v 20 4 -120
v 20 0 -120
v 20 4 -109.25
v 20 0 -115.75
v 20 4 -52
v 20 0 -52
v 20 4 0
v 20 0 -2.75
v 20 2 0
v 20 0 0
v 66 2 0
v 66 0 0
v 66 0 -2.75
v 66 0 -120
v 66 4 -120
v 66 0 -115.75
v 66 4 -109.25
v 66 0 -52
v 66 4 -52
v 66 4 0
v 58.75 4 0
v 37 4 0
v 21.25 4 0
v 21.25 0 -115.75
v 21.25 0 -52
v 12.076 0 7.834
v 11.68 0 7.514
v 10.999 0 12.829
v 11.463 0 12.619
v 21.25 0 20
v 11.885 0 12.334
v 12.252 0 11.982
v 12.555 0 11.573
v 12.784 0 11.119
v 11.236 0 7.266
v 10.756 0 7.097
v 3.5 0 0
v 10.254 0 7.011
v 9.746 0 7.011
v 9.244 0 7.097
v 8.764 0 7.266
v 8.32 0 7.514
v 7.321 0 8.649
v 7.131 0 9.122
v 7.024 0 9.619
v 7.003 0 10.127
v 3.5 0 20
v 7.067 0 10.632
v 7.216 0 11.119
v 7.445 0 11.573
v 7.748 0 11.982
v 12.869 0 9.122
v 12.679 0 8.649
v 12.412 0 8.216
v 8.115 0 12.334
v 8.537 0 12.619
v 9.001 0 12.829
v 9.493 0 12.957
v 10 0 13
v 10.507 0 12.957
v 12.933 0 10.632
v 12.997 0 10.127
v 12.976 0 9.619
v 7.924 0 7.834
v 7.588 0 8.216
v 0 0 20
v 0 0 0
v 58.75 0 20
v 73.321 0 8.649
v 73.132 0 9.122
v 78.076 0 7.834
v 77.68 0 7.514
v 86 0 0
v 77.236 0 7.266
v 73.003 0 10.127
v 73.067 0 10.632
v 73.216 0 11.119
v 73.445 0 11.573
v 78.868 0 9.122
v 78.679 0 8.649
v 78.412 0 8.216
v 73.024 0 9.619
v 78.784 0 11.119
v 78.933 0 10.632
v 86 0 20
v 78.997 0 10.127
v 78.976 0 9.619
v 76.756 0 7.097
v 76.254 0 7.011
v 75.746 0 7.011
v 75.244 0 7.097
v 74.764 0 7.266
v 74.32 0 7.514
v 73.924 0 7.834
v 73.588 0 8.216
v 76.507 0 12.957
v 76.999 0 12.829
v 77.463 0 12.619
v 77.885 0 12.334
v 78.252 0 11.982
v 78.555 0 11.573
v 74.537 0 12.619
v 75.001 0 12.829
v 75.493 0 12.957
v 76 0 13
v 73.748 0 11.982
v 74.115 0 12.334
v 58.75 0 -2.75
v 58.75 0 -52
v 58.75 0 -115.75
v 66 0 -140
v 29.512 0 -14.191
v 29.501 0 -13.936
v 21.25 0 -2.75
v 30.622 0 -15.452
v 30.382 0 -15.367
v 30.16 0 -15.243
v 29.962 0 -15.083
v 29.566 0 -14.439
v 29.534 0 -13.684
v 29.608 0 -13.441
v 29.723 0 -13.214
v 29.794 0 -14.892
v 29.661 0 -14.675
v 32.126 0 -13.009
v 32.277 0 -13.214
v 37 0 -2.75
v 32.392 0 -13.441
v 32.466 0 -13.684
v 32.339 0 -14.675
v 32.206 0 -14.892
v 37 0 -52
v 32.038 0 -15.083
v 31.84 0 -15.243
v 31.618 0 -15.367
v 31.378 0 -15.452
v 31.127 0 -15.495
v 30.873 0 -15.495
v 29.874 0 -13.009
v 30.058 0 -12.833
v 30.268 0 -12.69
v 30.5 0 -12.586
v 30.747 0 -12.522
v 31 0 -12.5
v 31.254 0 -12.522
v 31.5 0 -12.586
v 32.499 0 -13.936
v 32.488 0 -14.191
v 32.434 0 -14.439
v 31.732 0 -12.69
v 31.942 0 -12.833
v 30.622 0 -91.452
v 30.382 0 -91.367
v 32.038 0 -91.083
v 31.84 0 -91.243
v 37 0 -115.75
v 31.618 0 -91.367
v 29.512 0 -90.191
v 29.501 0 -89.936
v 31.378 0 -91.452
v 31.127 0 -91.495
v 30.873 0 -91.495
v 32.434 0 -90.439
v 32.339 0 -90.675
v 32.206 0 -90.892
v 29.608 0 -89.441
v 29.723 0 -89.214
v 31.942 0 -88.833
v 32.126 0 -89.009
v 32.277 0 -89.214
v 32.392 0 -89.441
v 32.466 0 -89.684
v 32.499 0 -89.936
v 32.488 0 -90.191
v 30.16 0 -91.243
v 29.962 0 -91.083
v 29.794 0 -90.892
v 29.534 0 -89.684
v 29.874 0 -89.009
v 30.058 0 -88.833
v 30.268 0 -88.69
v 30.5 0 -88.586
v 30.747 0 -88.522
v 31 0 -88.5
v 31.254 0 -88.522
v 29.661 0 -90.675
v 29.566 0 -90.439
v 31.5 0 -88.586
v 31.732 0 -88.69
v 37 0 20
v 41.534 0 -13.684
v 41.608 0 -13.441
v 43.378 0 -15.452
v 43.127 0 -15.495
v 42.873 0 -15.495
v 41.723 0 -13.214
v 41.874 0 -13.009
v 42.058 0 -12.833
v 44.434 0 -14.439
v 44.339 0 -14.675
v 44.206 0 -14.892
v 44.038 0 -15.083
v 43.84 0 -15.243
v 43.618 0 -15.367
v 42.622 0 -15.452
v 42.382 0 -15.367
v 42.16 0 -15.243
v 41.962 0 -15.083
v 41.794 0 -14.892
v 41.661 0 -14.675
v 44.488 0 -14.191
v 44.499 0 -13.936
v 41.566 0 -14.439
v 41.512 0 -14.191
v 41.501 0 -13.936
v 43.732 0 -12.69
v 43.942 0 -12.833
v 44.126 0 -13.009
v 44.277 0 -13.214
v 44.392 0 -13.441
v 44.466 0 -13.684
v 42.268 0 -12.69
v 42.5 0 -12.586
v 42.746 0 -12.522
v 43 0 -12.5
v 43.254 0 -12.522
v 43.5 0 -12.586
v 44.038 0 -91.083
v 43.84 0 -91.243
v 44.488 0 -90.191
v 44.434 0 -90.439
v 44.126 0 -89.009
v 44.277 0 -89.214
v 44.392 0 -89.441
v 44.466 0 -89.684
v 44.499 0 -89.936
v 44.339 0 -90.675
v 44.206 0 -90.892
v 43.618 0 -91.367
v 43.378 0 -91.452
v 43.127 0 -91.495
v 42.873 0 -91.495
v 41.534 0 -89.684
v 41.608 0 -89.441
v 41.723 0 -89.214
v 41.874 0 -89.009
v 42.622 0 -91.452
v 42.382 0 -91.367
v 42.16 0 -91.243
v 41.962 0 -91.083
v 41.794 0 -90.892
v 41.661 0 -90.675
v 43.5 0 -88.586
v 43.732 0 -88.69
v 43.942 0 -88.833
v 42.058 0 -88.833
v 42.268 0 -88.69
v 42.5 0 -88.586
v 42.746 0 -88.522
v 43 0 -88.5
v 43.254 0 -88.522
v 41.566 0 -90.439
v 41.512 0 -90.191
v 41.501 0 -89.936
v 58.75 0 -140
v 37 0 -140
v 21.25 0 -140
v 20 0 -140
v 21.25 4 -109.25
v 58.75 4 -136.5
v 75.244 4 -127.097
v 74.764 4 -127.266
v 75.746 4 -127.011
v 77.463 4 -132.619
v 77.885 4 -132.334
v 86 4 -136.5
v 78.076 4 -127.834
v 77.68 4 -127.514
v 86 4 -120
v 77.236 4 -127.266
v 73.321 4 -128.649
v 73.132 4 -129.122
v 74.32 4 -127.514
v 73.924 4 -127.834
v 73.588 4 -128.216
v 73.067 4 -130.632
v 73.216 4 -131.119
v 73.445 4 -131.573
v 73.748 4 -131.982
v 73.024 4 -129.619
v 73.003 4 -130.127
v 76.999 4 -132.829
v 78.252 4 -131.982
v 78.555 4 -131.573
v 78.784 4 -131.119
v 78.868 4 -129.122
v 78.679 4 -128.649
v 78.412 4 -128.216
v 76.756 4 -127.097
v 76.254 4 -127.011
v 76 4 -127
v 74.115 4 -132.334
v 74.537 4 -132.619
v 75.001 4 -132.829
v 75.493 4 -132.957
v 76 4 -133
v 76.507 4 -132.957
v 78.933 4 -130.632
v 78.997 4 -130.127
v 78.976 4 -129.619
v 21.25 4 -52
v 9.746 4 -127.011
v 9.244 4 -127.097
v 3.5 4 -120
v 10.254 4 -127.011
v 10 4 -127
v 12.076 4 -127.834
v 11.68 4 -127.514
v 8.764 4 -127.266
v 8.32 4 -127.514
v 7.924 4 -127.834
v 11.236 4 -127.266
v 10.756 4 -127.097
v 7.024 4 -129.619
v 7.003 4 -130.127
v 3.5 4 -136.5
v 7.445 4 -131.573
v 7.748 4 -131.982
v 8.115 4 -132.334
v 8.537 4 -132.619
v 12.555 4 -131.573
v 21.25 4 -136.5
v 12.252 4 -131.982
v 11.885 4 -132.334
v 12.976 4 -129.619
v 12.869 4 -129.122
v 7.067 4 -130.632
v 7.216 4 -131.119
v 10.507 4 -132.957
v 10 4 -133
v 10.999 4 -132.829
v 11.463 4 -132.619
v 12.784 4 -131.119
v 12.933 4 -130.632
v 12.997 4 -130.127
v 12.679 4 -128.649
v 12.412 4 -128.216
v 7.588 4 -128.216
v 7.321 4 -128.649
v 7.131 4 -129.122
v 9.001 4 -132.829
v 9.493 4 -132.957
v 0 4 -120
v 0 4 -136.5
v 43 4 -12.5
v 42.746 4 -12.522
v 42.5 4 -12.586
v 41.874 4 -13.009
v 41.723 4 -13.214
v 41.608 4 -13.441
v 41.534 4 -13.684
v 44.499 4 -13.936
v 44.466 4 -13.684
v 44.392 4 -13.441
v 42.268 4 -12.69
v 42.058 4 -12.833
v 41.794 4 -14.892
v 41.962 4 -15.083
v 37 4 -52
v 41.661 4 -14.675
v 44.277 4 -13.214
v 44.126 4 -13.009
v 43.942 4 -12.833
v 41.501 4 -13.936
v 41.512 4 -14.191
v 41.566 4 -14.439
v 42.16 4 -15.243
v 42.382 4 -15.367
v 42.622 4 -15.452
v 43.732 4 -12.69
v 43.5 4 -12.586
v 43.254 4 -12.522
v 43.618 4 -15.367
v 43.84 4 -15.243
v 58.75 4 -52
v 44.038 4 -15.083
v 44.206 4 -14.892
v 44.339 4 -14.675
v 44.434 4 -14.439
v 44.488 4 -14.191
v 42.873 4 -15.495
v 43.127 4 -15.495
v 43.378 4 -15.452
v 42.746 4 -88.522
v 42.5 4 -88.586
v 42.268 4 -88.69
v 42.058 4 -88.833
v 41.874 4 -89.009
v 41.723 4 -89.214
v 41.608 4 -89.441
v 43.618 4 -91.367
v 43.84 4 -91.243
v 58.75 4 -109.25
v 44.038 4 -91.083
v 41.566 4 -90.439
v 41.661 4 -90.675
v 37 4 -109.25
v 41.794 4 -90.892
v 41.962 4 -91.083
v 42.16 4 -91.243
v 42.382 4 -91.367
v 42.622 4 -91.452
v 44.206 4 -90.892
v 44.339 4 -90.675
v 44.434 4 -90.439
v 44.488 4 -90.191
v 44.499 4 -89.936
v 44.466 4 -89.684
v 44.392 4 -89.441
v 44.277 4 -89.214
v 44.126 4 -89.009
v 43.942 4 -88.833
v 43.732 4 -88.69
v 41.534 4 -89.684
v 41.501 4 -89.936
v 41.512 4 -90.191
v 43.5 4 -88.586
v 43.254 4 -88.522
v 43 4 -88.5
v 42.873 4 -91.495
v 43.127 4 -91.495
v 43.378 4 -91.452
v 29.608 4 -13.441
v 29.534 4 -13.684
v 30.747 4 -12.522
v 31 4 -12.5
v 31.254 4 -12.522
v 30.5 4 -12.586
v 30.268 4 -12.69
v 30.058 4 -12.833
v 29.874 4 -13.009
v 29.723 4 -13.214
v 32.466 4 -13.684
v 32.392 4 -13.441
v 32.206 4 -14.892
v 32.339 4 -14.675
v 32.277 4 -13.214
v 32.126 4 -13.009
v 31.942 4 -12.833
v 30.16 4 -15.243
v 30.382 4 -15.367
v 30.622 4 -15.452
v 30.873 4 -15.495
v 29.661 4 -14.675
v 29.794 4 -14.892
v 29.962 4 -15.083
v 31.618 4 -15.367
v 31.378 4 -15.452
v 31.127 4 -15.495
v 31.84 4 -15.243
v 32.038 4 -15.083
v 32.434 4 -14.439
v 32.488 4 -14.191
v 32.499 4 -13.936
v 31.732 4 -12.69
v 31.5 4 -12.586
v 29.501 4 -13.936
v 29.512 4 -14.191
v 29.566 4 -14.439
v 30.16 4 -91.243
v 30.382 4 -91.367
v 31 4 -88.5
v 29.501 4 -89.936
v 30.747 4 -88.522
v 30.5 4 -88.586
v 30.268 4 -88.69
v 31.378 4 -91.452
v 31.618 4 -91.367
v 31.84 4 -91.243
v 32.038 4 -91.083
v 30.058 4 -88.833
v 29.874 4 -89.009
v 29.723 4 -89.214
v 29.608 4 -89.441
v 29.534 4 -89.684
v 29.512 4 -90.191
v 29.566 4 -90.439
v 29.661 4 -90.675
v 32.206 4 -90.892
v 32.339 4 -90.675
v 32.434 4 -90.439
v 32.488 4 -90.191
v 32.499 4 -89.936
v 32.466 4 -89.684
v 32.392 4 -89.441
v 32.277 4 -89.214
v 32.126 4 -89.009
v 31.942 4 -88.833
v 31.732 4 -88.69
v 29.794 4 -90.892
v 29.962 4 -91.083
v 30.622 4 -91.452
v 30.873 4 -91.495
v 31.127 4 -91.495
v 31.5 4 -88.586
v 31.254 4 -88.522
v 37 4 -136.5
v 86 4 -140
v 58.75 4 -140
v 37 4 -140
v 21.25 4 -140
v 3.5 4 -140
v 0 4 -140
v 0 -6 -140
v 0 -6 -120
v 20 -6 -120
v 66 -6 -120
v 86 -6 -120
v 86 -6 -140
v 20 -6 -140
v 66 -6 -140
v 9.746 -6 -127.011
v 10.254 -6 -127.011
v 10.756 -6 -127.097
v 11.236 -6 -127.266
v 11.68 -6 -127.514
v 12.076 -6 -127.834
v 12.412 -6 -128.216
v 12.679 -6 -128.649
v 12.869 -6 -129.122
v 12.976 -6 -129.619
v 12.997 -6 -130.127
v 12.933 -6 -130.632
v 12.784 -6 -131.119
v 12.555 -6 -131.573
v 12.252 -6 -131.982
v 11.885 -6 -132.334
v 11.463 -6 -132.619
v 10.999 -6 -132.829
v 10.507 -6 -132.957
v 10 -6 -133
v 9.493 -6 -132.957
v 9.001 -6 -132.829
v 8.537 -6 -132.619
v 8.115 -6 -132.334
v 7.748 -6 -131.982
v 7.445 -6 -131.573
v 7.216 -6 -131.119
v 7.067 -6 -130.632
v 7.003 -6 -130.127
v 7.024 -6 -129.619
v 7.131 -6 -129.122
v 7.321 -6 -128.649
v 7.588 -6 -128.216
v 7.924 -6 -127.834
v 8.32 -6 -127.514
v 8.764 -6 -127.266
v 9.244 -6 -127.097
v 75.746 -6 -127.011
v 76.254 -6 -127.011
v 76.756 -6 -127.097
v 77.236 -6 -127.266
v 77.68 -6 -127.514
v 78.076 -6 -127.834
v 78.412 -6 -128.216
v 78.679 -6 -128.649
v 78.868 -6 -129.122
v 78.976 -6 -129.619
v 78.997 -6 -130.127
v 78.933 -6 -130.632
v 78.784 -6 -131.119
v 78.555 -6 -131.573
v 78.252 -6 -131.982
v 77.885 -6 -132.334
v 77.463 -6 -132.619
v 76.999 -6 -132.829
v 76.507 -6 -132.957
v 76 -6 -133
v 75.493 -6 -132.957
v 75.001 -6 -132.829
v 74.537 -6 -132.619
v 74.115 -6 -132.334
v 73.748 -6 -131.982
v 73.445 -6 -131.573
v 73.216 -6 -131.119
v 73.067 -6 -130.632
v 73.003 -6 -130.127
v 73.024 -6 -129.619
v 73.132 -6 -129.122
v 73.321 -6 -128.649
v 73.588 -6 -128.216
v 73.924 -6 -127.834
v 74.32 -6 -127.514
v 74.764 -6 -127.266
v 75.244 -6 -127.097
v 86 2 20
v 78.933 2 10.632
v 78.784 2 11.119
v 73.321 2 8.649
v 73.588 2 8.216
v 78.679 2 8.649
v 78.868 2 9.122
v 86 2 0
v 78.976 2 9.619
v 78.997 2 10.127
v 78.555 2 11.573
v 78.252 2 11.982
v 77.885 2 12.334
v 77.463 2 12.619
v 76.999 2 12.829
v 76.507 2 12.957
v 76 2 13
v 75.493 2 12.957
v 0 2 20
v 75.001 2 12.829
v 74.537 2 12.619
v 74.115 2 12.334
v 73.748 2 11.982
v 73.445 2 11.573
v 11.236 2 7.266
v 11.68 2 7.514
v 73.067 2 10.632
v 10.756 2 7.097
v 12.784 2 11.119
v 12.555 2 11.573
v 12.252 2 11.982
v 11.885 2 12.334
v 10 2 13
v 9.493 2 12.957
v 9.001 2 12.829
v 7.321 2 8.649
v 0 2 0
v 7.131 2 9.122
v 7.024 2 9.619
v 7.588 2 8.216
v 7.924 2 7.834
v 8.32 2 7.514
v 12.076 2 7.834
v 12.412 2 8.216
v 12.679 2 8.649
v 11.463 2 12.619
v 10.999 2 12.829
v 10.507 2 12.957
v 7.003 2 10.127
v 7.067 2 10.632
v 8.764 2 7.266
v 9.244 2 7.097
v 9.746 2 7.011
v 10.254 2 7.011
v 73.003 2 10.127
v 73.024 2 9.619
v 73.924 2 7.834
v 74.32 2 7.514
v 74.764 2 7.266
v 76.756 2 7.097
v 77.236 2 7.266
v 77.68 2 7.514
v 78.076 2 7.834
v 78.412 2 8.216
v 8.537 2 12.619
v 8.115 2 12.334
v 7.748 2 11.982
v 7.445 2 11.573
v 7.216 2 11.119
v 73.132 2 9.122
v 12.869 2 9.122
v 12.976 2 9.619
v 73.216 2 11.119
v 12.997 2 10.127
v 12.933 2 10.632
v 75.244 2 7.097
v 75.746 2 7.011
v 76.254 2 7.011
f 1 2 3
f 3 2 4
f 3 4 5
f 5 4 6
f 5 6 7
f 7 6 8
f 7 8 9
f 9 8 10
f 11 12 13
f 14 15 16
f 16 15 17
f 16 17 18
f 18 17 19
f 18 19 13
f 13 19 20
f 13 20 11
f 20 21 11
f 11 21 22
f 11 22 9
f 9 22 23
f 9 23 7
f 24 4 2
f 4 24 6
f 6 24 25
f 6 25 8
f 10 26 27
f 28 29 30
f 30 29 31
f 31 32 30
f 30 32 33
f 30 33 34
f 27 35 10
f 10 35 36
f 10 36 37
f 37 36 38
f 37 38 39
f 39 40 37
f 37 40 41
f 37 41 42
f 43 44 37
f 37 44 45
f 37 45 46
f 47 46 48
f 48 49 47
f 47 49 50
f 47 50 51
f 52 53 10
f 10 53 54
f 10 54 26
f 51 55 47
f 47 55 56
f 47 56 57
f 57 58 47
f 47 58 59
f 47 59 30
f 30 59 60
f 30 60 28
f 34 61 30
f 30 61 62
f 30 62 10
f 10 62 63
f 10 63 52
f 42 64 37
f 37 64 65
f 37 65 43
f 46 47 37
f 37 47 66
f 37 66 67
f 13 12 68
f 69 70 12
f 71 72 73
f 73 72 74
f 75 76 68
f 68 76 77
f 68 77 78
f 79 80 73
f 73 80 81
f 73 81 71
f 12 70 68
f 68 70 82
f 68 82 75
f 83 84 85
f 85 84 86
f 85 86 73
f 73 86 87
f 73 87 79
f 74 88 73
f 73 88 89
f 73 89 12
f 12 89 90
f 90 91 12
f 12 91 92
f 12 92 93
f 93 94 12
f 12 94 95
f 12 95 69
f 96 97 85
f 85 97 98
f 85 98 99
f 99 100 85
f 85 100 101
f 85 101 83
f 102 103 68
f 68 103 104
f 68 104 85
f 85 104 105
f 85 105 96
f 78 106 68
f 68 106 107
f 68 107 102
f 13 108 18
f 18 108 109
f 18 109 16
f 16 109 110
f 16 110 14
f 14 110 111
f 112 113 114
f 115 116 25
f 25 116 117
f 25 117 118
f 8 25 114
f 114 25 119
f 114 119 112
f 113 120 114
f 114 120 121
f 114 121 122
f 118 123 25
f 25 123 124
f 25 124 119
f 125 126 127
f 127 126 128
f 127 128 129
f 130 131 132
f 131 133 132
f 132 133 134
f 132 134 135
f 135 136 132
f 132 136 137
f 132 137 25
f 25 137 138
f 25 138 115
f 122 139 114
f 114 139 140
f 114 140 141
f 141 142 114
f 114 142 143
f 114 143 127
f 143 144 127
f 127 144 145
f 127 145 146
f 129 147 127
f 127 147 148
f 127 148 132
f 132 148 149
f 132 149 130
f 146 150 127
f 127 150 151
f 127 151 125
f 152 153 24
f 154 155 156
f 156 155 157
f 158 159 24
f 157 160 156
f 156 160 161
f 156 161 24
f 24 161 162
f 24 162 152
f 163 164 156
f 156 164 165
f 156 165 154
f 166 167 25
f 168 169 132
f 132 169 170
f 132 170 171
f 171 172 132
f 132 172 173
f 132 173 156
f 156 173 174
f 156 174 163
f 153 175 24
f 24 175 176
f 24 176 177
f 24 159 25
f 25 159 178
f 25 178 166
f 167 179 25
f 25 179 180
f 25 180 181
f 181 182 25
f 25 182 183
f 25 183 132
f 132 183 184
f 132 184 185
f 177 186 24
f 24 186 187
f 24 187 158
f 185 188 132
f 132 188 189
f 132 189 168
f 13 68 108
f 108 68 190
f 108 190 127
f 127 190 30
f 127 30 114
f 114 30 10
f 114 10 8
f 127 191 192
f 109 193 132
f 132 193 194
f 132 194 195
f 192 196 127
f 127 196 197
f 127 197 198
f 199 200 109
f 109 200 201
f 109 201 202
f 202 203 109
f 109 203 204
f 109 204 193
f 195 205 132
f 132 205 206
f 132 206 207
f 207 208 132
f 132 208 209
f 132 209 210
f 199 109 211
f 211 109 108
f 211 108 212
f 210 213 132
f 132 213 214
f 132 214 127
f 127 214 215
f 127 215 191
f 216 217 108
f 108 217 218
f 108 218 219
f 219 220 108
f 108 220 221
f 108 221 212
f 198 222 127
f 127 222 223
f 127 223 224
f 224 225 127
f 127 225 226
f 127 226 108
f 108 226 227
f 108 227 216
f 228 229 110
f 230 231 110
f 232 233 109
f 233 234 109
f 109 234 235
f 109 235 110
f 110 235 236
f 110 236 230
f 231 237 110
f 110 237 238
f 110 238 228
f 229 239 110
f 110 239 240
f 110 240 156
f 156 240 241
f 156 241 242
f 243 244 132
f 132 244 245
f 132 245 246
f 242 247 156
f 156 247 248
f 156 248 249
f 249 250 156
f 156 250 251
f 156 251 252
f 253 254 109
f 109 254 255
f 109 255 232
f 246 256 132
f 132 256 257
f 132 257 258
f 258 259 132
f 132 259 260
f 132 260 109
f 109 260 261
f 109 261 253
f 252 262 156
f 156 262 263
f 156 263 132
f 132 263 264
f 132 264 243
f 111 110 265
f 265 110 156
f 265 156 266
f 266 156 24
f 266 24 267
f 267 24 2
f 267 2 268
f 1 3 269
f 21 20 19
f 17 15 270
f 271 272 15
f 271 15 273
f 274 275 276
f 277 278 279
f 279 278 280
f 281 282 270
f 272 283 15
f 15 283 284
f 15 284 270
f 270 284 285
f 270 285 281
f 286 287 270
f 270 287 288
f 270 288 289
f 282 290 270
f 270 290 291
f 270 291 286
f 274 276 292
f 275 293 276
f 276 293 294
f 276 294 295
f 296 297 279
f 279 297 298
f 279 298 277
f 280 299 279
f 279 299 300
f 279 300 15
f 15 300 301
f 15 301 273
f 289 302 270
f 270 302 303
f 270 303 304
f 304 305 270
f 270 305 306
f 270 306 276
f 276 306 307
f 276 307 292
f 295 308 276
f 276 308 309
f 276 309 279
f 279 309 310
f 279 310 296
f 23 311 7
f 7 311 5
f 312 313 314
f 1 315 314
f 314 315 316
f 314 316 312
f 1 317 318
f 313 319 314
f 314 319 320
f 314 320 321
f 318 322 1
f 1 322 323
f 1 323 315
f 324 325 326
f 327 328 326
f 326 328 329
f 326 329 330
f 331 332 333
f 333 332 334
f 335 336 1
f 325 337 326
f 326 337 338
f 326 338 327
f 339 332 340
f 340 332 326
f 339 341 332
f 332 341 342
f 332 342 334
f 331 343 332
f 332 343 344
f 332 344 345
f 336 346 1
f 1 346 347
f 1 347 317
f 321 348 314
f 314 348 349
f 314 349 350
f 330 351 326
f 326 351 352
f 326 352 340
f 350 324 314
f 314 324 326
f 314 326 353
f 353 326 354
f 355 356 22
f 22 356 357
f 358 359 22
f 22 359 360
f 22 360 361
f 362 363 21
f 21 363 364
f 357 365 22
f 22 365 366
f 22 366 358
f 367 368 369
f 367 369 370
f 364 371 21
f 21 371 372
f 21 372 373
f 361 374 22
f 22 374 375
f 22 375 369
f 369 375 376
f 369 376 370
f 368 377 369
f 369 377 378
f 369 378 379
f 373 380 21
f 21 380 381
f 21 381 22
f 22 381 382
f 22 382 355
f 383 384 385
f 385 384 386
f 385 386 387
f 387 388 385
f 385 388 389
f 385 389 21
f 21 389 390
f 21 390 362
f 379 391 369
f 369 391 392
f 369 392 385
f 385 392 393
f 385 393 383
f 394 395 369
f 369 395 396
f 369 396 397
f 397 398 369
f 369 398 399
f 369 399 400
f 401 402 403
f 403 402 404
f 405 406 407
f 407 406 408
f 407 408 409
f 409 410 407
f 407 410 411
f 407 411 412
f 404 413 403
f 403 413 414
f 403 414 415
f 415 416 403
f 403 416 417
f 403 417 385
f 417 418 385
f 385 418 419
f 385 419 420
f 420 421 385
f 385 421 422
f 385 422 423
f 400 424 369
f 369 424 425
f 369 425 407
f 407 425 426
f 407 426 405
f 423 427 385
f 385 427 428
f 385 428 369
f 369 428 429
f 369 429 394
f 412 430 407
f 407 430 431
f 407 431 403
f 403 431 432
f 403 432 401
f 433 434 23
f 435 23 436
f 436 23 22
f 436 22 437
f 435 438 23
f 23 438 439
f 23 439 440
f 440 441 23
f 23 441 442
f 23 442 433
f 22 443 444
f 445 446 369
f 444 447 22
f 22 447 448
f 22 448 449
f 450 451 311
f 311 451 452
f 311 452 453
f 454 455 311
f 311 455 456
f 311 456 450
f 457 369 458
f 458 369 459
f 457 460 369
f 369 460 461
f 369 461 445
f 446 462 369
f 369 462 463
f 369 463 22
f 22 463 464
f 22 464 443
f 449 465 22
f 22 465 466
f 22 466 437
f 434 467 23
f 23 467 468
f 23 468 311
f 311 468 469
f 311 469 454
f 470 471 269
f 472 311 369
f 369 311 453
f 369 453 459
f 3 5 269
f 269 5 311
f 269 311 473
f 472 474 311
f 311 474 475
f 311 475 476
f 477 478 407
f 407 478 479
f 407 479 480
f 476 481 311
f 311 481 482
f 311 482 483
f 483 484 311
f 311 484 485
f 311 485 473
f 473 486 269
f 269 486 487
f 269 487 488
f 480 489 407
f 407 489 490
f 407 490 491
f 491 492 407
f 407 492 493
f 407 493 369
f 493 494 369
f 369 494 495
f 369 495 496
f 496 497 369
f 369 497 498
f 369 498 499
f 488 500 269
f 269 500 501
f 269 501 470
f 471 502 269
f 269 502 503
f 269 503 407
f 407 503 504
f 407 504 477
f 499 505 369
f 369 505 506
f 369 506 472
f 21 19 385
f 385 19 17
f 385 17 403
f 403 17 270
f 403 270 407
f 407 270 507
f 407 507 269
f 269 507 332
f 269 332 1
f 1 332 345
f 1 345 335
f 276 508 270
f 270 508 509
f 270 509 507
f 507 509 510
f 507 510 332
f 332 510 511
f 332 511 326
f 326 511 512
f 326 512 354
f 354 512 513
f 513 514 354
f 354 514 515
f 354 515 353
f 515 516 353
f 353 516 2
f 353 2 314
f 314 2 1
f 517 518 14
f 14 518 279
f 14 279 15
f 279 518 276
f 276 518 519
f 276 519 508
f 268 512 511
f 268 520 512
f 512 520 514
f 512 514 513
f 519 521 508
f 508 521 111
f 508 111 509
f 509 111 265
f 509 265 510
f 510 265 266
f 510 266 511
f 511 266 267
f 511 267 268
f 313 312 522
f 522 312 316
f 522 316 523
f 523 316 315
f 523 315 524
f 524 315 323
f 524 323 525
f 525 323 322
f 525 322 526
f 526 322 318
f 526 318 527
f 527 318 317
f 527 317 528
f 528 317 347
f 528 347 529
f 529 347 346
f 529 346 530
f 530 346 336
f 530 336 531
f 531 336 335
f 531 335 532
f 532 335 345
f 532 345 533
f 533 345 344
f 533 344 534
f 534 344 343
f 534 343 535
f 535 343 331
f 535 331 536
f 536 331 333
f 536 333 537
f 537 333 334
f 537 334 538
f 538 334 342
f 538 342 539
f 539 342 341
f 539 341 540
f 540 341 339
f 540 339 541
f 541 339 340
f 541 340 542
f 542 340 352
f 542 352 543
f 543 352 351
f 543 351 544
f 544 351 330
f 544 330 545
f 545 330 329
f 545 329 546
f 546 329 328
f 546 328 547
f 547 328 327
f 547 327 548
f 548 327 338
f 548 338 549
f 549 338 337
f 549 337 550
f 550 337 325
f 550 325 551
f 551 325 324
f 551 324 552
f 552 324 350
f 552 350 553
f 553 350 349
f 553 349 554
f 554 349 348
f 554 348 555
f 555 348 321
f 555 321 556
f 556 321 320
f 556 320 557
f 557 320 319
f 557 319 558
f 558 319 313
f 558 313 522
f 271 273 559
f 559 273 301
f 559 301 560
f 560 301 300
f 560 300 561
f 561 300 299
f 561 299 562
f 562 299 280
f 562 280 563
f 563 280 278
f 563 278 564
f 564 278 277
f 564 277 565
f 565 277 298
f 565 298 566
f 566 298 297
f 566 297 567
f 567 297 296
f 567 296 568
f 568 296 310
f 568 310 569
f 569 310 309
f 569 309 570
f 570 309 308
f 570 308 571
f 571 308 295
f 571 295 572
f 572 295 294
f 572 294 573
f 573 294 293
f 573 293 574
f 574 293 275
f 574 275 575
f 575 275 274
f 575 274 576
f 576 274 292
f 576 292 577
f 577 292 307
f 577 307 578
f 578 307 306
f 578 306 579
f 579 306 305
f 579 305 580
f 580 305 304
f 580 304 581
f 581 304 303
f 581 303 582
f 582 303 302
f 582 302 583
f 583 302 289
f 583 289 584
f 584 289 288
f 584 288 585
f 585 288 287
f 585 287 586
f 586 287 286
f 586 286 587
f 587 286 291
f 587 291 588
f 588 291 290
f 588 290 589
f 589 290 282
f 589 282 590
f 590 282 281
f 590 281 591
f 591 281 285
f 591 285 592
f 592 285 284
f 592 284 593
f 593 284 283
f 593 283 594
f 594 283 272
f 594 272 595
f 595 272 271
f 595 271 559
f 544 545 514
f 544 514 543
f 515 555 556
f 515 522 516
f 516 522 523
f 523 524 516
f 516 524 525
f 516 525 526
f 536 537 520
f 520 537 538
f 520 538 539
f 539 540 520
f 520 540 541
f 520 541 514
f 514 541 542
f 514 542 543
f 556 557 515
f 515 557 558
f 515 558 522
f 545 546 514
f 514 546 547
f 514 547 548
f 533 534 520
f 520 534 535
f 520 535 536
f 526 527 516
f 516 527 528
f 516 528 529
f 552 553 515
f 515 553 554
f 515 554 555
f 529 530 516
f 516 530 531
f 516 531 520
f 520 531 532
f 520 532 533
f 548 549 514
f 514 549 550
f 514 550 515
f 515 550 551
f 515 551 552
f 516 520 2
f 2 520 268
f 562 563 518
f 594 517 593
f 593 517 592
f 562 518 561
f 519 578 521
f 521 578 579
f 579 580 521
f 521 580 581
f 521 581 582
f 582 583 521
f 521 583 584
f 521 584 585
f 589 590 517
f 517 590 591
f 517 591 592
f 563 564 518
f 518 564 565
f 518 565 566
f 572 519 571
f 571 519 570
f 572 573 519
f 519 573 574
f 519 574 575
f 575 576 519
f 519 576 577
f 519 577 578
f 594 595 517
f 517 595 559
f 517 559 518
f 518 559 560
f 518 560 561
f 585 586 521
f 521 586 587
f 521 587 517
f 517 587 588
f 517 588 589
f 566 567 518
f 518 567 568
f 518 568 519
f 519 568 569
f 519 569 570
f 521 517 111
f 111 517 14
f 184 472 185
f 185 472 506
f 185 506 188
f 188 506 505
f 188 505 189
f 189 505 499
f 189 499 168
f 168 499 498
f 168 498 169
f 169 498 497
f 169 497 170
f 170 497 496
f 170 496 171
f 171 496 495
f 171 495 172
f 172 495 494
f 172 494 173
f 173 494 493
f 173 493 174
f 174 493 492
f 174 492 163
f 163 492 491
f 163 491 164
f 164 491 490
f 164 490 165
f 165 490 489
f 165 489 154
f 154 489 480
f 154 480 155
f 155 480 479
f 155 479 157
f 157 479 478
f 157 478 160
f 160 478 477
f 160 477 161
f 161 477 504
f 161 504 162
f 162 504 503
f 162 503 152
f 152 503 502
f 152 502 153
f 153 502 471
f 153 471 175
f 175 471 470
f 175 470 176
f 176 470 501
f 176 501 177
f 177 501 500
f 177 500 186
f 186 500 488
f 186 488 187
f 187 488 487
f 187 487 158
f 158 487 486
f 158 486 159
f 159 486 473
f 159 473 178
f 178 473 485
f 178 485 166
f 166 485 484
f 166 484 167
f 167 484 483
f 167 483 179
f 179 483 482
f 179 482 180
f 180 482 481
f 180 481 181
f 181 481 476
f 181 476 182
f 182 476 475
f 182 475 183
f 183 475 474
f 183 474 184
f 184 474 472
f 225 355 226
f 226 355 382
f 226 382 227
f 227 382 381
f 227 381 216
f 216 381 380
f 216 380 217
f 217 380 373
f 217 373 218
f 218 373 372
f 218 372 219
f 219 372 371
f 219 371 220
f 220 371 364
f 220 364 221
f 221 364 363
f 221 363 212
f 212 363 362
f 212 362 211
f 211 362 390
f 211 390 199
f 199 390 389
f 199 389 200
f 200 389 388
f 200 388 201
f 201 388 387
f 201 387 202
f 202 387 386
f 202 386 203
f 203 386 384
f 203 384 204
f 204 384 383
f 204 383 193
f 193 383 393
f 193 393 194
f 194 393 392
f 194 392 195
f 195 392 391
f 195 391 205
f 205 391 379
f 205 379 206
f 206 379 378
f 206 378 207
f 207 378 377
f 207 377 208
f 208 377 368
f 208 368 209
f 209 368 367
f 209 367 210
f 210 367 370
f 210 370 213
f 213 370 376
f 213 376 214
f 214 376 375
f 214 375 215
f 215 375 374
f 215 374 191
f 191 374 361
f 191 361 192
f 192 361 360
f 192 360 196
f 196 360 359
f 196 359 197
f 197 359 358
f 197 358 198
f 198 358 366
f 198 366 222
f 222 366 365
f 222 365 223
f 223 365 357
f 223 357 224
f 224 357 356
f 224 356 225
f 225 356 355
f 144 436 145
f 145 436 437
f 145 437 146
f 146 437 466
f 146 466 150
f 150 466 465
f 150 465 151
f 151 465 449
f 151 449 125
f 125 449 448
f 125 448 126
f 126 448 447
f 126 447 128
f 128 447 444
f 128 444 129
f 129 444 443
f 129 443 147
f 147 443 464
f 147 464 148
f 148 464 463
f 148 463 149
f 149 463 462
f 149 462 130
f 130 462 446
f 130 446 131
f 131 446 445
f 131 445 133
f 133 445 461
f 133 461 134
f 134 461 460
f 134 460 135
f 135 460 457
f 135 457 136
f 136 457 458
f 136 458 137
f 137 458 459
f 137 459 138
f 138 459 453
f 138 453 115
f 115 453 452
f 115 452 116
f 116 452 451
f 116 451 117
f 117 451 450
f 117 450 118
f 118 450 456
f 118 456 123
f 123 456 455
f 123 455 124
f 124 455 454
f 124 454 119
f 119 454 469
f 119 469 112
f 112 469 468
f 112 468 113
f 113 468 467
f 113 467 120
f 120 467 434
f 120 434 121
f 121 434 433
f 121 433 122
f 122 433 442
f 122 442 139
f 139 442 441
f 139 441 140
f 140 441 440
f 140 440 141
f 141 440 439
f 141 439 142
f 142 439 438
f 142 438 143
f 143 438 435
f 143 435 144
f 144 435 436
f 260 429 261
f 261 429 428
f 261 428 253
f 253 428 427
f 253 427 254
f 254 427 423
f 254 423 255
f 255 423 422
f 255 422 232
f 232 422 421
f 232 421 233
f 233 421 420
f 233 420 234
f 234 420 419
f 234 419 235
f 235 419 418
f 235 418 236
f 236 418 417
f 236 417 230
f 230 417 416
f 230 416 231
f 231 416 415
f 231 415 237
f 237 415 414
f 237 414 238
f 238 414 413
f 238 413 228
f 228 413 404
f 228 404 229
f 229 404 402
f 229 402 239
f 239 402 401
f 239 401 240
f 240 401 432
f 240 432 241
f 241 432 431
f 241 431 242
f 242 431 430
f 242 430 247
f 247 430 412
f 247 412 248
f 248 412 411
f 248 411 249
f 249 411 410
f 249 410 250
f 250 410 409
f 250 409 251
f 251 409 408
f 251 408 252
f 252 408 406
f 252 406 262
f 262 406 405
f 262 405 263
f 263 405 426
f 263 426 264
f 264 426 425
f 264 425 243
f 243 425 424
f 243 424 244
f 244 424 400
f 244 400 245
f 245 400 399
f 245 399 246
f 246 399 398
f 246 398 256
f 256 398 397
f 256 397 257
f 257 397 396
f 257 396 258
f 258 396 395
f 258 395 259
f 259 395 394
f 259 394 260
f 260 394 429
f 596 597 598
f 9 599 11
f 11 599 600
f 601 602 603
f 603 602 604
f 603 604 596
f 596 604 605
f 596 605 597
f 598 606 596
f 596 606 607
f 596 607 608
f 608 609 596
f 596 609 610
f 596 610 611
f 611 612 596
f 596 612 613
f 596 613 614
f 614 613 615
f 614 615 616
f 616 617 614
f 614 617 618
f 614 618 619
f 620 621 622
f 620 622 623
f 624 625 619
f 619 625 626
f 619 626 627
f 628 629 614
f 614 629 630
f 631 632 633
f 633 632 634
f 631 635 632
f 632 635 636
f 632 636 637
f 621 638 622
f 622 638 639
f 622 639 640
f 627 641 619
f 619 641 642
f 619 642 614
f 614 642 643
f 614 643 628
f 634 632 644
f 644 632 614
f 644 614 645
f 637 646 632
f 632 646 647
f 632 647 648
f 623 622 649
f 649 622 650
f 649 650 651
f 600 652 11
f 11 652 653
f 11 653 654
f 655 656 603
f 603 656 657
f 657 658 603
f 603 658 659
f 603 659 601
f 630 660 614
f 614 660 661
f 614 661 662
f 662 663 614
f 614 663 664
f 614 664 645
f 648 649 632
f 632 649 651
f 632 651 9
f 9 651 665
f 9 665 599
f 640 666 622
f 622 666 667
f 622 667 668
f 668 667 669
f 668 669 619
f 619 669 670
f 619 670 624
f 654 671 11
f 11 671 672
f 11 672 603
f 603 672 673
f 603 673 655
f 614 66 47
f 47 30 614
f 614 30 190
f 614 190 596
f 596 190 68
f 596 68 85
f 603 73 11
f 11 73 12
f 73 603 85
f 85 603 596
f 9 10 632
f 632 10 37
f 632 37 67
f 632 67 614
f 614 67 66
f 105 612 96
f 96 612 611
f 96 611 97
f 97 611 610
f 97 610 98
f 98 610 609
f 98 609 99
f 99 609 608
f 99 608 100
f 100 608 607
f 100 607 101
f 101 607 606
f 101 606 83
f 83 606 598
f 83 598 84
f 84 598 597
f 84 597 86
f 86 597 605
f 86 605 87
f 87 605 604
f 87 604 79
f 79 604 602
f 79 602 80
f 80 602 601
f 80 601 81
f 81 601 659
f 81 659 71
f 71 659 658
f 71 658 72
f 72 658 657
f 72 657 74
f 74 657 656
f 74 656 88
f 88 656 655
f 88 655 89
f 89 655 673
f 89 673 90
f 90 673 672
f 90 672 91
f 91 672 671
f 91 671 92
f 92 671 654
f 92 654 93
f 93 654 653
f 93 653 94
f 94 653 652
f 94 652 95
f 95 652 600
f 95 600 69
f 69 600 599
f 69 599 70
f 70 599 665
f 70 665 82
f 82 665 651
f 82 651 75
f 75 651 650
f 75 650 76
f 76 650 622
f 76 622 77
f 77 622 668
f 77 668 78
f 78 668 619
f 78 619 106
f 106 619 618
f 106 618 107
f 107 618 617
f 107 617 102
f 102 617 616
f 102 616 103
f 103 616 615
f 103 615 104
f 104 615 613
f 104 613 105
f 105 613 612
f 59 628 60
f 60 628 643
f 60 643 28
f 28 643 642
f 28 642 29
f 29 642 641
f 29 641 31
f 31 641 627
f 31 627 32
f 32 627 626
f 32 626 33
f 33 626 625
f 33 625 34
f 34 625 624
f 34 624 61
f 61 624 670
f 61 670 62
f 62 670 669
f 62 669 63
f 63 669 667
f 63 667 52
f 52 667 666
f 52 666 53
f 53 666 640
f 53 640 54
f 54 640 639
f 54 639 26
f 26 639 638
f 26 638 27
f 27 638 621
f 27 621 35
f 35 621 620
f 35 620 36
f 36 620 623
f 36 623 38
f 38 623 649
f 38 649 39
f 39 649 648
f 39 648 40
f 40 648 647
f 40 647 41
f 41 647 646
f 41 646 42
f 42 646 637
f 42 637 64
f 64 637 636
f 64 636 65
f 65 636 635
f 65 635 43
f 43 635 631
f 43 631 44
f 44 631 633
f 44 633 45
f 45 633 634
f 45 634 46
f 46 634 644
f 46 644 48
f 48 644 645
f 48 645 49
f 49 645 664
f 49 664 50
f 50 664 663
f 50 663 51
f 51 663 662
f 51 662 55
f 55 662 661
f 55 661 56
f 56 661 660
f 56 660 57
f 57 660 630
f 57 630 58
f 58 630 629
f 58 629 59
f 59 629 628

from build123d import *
from build123d.topology import SkipClean

# Parameters (mm, degrees)
SKETCH1_R           = 3
BOSS_EXTRUDE1_DEPTH = 4
BOSS_EXTRUDE3_START = 6
SKETCH8_W           = 20
SKETCH8_H           = 20
SKETCH8_R           = 3
BOSS_EXTRUDE3_DEPTH = 6
SKETCH9_R           = 1.5
CUT_EXTRUDE5_DEPTH  = 6
SKETCH10_W          = 46
SKETCH10_H          = 2
BOSS_EXTRUDE4_DEPTH = 20
SKETCH13_W          = 20
SKETCH13_H          = 2
BOSS_EXTRUDE5_DEPTH = 20
SKETCH14_W          = 20
SKETCH14_H          = 2
BOSS_EXTRUDE7_DEPTH = 20
SKETCH15_R          = 3
CUT_EXTRUDE7_DEPTH  = 20


with BuildPart() as part:
    # Sketch1 → Boss-Extrude1 (new body)
    with BuildSketch(Plane(origin=(0, 0, 0), x_dir=(1, 0, 0), z_dir=(0, 1, 0))):
        Polygon((0, 140), (86, 140), (86, 120), (66, 120), (66, 0), (20, 0), (20, 120), (0, 120), align=None)
        with Locations(Location((10, 130, 0), (0, 0, 270))):
            Circle(SKETCH1_R, mode=Mode.SUBTRACT)
        with Locations(Location((76, 130, 0), (0, 0, 270))):
            Circle(SKETCH1_R, mode=Mode.SUBTRACT)
    extrude(amount=BOSS_EXTRUDE1_DEPTH)

    # Sketch8 → Boss-Extrude3 (add)
    # profile 1 of 2: a face of its own
    with SkipClean():  # the faces are left unmerged after this step: merging them gives an invalid solid
        with BuildSketch(Plane.XZ.offset(BOSS_EXTRUDE3_START)):
            with Locations((10, -130)):
                Rectangle(SKETCH8_W, SKETCH8_H)
            with Locations(Location((10, -130, 0), (0, 0, 270))):
                Circle(SKETCH8_R, mode=Mode.SUBTRACT)
        # profile 2 of 2: a face of its own
        with BuildSketch(Plane.XZ.offset(BOSS_EXTRUDE3_START)):
            with Locations((76, -130)):
                Rectangle(SKETCH8_W, SKETCH8_H)
            with Locations(Location((76, -130, 0), (0, 0, 270))):
                Circle(SKETCH8_R, mode=Mode.SUBTRACT)
        extrude(amount=-BOSS_EXTRUDE3_DEPTH)

    # Sketch9 → Cut-Extrude5 (cut)
    with SkipClean():  # the faces are left unmerged after this step: merging them gives an invalid solid
        with BuildSketch(Plane(origin=(0, 4, 0), x_dir=(1, 0, 0), z_dir=(0, 1, 0))):
            with Locations(Location((31, 90, 0), (0, 0, 270))):
                Circle(SKETCH9_R)
            with Locations(Location((43, 90, 0), (0, 0, 270))):
                Circle(SKETCH9_R)
            with Locations(Location((31, 14, 0), (0, 0, 270))):
                Circle(SKETCH9_R)
            with Locations(Location((43, 14, 0), (0, 0, 270))):
                Circle(SKETCH9_R)
        extrude(amount=-CUT_EXTRUDE5_DEPTH, mode=Mode.SUBTRACT)

    # Sketch10 → Boss-Extrude4 (add)
    with SkipClean():  # the faces are left unmerged after this step: merging them gives an invalid solid
        with BuildSketch(Plane.XY):
            with Locations((43, 1)):
                Rectangle(SKETCH10_W, SKETCH10_H)
        extrude(amount=BOSS_EXTRUDE4_DEPTH)

    # Sketch13 → Boss-Extrude5 (add)
    with SkipClean():  # the faces are left unmerged after this step: merging them gives an invalid solid
        with BuildSketch(Plane(origin=(66, 0, 0), x_dir=(0, 0, -1), z_dir=(1, 0, 0))):
            with Locations((-10, 1)):
                Rectangle(SKETCH13_W, SKETCH13_H)
        extrude(amount=BOSS_EXTRUDE5_DEPTH)

    # Sketch14 → Boss-Extrude7 (add)
    with SkipClean():  # the faces are left unmerged after this step: merging them gives an invalid solid
        with BuildSketch(Plane.ZY.offset(-20)):
            with Locations((10, 1)):
                Rectangle(SKETCH14_W, SKETCH14_H)
        extrude(amount=BOSS_EXTRUDE7_DEPTH)

    # Sketch15 → Cut-Extrude7 (cut)
    with SkipClean():  # the faces are left unmerged after this step: merging them gives an invalid solid
        with BuildSketch(Plane(origin=(0, 2, 0), x_dir=(1, 0, 0), z_dir=(0, 1, 0))):
            with Locations(Location((10, -10, 0), (0, 0, 270))):
                Circle(SKETCH15_R)
            with Locations(Location((76, -10, 0), (0, 0, 270))):
                Circle(SKETCH15_R)
        extrude(amount=-CUT_EXTRUDE7_DEPTH, mode=Mode.SUBTRACT)


solid = part.part
